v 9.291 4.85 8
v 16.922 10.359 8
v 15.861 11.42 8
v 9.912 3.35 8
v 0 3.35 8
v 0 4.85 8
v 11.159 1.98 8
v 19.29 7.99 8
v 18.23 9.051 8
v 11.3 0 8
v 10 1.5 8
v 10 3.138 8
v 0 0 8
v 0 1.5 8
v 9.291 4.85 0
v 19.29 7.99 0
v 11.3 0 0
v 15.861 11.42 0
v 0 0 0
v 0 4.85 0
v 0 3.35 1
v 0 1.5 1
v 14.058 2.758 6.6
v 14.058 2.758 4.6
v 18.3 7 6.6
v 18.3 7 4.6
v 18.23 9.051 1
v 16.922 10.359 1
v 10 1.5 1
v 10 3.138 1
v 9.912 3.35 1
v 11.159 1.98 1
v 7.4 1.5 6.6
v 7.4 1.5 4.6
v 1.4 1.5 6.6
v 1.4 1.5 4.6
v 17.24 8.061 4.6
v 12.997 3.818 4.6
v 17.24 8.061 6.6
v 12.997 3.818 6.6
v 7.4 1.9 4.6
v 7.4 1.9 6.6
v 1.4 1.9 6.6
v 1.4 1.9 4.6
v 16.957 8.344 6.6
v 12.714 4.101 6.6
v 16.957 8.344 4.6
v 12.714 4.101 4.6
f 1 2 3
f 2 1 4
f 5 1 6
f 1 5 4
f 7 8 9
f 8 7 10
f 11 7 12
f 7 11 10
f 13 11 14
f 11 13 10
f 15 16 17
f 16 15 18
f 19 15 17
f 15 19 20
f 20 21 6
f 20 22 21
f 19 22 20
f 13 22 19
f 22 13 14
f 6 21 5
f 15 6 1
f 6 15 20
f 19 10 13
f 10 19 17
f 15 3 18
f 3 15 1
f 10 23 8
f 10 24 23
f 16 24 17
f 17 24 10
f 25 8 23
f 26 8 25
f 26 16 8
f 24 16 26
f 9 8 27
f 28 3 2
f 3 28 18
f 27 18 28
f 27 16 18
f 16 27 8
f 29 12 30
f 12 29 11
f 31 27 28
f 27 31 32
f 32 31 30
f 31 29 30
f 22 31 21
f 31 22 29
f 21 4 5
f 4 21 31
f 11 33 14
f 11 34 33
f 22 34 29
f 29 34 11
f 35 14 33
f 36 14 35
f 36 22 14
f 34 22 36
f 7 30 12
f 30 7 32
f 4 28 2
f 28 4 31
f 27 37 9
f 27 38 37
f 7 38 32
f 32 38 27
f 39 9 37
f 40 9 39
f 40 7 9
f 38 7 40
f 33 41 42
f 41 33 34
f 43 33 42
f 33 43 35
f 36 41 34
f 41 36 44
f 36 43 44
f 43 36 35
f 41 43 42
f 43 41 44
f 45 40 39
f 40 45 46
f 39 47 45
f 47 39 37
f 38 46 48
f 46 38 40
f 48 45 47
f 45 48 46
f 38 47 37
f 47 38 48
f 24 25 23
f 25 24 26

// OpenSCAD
br_len = 11.3;
wall_thickness = 1.5;
pcb_thickness = 1.85;
notch_thickness = 0.4;
notch_offset_x = 0.4;
notch_offset_y = 0.1;

difference() {
    union() {
        cube([br_len, pcb_thickness+2*wall_thickness, 8]);
        translate([br_len, 0, 0])
        rotate([0, 0, 45])   
        cube([br_len, pcb_thickness+2*wall_thickness, 8]);     
    }
    translate([0, wall_thickness, 1])
    cube([10, pcb_thickness, 8]);
    

    translate([br_len, 0, 0])
    rotate([0, 0, 45])

    translate([br_len-10, wall_thickness, 1])
    cube([10, pcb_thickness, 8]);
}

//// Base plate
//hull() {
//    cube([br_len, 6.6, 0.4]);
//    
//    translate([br_len, 0, 0])
//    rotate([0, 0, 45])
//    cube([br_len, 6.6, 0.4]);
//}

// Notches
translate([1+notch_offset_x,0,8-wall_thickness-2+notch_offset_y])
cube([6, wall_thickness+notch_thickness, 2]);

translate([br_len, 0, 0])
rotate([0, 0, 45])
translate([br_len-7-notch_offset_x, 0, 8-wall_thickness-2+notch_offset_y])
cube([6, wall_thickness+notch_thickness, 2]);
